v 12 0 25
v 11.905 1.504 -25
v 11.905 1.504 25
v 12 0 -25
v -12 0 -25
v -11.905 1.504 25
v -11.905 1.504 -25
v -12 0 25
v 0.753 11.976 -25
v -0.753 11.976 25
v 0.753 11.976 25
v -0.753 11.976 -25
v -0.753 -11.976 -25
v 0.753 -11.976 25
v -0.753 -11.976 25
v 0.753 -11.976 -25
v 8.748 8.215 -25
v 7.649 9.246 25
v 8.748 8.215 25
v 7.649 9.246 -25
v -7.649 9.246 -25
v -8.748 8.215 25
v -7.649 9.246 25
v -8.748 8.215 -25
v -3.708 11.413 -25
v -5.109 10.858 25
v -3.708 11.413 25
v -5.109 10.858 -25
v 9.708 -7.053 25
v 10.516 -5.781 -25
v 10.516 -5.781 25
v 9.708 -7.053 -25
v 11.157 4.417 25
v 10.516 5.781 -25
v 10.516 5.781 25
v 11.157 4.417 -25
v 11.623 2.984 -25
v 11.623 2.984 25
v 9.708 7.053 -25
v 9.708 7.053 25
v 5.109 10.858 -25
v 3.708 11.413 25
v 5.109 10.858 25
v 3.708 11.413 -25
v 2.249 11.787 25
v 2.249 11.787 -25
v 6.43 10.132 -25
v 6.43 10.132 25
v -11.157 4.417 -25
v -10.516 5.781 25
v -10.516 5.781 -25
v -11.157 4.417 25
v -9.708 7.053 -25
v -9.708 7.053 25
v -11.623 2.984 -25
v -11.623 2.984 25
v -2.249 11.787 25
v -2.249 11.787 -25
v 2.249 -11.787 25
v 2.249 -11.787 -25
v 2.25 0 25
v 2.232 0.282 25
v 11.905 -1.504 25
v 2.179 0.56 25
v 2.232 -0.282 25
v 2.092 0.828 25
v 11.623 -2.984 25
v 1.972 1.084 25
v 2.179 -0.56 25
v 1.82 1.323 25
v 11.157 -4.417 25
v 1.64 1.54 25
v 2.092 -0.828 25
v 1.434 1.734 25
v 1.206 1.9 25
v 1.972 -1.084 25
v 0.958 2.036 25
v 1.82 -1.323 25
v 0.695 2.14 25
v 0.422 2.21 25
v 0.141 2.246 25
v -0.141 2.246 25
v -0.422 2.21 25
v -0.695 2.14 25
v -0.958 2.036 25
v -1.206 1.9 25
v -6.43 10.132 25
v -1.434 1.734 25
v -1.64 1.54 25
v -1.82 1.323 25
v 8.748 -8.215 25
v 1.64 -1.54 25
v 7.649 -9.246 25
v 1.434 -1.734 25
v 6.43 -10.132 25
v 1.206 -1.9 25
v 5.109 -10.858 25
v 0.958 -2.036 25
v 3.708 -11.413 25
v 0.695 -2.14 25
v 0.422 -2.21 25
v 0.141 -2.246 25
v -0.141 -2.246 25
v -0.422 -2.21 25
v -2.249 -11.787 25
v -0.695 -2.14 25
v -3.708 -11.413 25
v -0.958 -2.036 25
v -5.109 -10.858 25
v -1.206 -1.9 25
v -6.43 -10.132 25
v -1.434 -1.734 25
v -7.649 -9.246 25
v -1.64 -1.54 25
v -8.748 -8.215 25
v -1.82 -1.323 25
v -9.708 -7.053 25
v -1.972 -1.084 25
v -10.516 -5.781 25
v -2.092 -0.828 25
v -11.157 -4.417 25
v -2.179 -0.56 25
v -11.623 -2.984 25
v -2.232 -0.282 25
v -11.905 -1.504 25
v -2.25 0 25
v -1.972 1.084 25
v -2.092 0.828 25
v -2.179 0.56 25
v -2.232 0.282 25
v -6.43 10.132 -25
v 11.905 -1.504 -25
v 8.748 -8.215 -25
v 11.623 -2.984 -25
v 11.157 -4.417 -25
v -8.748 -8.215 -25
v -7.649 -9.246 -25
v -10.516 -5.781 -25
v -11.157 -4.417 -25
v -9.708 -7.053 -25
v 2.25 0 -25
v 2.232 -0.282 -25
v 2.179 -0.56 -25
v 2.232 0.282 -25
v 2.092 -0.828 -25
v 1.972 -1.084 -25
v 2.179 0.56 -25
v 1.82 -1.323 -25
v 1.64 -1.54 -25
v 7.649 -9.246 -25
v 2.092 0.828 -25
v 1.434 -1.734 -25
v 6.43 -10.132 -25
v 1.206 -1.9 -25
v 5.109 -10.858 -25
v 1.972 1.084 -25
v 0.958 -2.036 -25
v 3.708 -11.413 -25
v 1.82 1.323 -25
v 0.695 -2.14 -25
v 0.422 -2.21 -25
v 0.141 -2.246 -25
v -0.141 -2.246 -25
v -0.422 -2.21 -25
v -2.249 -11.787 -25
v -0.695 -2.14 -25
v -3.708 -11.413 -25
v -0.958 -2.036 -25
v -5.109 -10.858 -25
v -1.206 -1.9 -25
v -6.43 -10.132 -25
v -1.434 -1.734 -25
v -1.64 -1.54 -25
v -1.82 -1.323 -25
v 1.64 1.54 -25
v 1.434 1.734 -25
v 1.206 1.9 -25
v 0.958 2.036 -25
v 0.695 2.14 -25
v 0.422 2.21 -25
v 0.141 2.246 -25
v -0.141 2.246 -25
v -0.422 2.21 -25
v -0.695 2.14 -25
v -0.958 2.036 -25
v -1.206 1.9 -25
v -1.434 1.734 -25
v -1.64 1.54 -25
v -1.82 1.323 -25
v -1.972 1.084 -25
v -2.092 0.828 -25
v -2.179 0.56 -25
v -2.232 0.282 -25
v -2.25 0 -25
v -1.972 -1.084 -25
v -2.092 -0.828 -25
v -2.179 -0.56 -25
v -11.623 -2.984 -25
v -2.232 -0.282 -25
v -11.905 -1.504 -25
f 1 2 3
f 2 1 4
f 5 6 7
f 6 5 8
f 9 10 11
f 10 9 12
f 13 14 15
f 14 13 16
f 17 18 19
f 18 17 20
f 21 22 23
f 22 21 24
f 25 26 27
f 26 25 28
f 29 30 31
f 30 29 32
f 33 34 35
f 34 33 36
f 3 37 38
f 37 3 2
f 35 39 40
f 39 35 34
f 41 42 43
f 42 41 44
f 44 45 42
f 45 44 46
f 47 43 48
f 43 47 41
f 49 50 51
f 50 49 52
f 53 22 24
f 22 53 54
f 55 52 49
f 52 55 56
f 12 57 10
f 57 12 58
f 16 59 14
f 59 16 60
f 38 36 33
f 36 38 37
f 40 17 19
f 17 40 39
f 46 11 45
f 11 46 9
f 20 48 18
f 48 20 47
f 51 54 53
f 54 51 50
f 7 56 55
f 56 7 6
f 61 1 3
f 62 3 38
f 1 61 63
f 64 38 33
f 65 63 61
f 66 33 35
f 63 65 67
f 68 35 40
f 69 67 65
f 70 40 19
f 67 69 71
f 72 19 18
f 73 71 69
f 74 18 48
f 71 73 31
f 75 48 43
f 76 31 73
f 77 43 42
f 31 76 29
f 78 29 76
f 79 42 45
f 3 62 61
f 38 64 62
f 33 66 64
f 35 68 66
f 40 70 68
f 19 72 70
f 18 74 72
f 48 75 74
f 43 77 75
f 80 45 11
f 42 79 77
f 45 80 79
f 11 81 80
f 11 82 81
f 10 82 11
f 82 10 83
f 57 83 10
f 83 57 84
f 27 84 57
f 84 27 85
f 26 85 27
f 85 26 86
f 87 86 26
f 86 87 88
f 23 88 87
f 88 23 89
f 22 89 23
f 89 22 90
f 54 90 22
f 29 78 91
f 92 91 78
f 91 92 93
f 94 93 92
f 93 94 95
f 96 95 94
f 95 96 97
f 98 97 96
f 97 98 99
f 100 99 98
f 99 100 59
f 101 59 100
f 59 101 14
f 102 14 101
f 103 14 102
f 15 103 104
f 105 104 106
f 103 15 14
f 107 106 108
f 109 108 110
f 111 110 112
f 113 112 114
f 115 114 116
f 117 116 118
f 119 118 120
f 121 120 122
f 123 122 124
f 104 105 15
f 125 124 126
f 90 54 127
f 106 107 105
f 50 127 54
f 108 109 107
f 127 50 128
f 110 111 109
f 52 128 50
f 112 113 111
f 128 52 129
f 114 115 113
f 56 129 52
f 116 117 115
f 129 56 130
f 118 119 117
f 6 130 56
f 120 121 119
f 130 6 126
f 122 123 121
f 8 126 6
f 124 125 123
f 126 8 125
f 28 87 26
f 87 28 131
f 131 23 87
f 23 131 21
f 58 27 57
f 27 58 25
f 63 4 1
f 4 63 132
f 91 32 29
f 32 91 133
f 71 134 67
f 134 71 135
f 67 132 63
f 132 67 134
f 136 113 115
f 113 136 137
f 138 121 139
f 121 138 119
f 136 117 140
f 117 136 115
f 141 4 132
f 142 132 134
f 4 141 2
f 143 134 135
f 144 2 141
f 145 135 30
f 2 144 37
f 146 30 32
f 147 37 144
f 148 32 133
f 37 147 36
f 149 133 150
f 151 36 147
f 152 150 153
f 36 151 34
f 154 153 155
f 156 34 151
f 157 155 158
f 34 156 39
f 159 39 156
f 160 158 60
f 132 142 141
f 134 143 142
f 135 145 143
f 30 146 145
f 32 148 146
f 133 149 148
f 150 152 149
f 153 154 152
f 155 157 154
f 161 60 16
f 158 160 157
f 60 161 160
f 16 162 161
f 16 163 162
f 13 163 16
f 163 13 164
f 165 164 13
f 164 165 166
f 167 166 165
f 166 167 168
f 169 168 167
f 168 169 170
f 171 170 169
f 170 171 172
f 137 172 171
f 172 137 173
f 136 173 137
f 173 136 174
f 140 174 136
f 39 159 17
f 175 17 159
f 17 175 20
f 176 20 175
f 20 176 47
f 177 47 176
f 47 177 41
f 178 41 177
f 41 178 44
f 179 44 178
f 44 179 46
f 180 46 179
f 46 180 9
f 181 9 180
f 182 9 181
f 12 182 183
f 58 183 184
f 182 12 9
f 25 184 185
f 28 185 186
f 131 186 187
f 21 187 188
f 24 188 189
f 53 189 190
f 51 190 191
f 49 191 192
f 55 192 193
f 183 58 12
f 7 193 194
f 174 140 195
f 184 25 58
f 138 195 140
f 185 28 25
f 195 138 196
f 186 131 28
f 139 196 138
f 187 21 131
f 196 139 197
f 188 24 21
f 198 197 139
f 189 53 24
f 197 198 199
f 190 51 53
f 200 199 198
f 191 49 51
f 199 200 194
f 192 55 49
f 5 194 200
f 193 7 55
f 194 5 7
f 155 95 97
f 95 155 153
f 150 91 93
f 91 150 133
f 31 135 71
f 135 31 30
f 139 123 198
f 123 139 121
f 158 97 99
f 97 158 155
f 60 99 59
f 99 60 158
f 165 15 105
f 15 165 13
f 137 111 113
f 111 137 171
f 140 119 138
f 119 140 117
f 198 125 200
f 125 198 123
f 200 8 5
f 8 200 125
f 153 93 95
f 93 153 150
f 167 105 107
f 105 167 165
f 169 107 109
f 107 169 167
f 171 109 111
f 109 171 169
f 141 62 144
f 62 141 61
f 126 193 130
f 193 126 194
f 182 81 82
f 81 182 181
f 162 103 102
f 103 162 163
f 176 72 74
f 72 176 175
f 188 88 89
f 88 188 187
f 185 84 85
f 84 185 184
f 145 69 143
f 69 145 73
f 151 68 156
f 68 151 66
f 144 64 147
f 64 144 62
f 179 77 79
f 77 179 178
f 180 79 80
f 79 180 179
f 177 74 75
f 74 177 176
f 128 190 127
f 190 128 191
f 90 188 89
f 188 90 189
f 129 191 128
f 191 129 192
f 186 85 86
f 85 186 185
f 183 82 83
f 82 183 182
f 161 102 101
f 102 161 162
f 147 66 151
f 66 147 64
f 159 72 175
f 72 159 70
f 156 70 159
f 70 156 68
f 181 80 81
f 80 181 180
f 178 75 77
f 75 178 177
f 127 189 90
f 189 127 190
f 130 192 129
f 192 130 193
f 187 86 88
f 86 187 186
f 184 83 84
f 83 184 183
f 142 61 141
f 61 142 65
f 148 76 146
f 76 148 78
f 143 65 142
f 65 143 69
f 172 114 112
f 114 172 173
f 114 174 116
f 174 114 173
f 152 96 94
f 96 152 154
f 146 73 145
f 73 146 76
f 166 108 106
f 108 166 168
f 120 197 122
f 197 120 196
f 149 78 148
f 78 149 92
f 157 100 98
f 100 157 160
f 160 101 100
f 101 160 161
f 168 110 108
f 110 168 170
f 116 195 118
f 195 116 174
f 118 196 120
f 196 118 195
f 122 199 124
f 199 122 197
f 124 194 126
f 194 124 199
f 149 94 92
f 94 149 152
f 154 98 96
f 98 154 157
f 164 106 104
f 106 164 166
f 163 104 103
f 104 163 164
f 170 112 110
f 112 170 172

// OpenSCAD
$fn = 50;


difference() {
	union() {
		translate(v = [0, 0, -25.0000000000]) {
			cylinder(h = 50, r = 12.0000000000);
		}
	}
	union() {
		translate(v = [0, 0, -100.0000000000]) {
			cylinder(h = 200, r = 2.2500000000);
		}
	}
}
